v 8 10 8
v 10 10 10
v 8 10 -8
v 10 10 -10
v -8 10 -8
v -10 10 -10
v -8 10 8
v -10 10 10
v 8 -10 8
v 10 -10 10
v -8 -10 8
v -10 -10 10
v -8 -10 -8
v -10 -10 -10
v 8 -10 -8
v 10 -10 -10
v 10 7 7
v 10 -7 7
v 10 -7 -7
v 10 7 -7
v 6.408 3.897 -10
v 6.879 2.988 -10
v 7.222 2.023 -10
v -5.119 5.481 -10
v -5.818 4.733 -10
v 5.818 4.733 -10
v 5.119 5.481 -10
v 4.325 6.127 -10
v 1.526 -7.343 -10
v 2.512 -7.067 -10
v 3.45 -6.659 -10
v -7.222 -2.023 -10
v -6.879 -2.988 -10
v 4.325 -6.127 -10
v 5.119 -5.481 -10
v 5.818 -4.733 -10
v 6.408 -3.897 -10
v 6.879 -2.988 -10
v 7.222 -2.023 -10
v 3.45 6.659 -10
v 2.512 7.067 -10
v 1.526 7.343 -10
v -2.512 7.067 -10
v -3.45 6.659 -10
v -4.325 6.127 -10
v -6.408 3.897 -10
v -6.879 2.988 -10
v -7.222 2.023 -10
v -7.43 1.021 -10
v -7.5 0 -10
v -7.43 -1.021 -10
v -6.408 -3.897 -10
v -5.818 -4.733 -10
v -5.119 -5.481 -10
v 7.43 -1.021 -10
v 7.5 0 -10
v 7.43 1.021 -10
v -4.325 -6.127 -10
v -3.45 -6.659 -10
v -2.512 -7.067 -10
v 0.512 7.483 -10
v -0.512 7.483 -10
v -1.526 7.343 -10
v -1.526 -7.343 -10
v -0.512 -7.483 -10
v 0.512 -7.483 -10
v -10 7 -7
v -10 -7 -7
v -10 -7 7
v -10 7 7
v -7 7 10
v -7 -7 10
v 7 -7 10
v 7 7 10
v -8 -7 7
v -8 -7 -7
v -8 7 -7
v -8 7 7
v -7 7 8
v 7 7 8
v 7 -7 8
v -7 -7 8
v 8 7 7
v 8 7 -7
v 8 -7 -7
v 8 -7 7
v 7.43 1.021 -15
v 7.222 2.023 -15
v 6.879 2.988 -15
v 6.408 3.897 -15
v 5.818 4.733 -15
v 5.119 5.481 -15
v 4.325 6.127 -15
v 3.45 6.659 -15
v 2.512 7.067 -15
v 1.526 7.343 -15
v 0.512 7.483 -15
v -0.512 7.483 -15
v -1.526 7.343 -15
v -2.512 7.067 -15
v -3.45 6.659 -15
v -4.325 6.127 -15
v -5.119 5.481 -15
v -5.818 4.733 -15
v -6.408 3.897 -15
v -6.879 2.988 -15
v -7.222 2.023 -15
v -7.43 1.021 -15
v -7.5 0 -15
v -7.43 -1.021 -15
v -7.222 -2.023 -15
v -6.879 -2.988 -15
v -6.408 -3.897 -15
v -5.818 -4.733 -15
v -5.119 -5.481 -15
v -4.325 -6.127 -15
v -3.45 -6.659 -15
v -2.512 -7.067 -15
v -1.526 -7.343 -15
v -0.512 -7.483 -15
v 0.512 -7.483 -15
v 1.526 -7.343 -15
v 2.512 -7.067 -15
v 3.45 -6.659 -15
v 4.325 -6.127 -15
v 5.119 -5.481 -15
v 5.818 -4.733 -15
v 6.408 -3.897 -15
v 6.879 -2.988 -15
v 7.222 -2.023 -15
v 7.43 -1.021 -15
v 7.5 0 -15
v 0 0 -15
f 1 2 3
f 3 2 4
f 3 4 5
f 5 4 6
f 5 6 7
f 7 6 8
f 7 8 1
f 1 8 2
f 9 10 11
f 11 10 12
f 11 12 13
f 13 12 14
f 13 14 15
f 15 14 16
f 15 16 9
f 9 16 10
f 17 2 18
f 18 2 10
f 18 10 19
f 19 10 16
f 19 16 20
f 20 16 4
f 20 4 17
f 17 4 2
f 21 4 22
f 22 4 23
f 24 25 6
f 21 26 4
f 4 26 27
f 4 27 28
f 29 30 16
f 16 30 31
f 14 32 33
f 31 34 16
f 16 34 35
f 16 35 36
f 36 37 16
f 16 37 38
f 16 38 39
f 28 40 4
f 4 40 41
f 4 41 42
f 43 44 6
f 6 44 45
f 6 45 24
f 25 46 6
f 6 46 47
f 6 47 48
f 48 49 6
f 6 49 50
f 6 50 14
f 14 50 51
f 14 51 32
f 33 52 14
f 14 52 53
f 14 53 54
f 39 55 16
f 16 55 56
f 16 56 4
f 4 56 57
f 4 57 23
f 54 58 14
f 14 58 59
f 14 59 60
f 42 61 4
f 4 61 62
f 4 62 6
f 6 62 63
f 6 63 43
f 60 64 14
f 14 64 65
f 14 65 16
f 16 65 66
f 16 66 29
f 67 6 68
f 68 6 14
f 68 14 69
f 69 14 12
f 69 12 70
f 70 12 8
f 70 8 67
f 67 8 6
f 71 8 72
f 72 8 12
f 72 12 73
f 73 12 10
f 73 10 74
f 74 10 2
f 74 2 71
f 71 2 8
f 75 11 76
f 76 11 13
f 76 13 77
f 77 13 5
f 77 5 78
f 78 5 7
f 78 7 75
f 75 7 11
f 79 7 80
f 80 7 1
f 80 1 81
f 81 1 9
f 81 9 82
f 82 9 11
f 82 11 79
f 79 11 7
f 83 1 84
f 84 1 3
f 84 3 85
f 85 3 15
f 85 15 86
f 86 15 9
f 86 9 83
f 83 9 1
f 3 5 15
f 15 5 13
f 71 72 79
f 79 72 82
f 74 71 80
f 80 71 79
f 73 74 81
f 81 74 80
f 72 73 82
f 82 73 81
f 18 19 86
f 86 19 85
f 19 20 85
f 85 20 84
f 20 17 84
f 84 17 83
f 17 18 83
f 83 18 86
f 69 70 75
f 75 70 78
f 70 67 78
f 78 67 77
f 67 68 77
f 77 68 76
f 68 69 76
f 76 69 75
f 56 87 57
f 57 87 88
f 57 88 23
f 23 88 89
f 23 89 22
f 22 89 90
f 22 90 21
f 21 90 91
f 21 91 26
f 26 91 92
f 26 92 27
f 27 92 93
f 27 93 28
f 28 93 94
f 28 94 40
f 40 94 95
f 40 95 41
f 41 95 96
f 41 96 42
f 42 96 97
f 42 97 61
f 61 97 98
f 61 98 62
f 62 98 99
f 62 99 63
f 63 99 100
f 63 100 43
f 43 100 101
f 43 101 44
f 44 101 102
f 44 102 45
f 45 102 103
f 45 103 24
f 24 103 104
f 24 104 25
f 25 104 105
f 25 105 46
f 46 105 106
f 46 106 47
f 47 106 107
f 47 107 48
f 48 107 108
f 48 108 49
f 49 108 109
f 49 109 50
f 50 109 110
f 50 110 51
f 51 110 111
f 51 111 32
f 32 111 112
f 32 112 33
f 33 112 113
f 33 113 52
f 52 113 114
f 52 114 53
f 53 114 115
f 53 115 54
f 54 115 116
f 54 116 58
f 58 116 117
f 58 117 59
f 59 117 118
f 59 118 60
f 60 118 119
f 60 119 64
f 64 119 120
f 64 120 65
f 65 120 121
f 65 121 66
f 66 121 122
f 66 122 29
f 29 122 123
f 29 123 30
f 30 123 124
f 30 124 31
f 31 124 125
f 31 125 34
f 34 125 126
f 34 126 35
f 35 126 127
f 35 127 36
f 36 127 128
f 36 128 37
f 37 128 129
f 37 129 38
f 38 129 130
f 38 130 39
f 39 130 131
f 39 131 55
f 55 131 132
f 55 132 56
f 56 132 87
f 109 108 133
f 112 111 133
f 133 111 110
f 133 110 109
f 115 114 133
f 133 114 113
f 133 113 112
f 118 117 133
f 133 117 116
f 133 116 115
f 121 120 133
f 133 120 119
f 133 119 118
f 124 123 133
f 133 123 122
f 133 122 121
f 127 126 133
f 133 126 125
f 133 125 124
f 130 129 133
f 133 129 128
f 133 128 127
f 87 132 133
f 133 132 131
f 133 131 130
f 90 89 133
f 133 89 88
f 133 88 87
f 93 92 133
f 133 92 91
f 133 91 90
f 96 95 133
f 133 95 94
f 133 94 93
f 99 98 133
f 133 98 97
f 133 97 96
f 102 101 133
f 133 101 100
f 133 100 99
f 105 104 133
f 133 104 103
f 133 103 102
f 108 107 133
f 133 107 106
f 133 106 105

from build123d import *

# Parameters (mm, degrees)
SKETCH1_W           = 20
SKETCH1_H           = 20
SKETCH1_W_2         = 16
SKETCH1_H_2         = 16
BOSS_EXTRUDE1_DEPTH = 10
SKETCH2_W           = 14
SKETCH2_H           = 14
CUT_EXTRUDE1_DEPTH  = 21
SKETCH3_W           = 14
SKETCH3_H           = 14
CUT_EXTRUDE2_DEPTH  = 21
SKETCH4_W           = 2
SKETCH4_H           = 14
BOSS_EXTRUDE2_DEPTH = 14
SKETCH5_R           = 7.5
BOSS_EXTRUDE3_DEPTH = 5


with BuildPart() as part:
    # Sketch1 → Boss-Extrude1 (new body, symmetric)
    with BuildSketch(Plane(origin=(0, 0, 0), x_dir=(1, 0, 0), z_dir=(0, 1, 0))):
        Rectangle(SKETCH1_W, SKETCH1_H)
        Rectangle(SKETCH1_W_2, SKETCH1_H_2, mode=Mode.SUBTRACT)
    extrude(amount=BOSS_EXTRUDE1_DEPTH, both=True)

    # Sketch2 → Cut-Extrude1 (cut, through all)
    with BuildSketch(Plane.XY.offset(10)):
        Rectangle(SKETCH2_W, SKETCH2_H)
    extrude(amount=-CUT_EXTRUDE1_DEPTH, mode=Mode.SUBTRACT)

    # Sketch3 → Cut-Extrude2 (cut, through all)
    with BuildSketch(Plane(origin=(10, 0, 0), x_dir=(0, 0, -1), z_dir=(1, 0, 0))):
        Rectangle(SKETCH3_W, SKETCH3_H)
    extrude(amount=-CUT_EXTRUDE2_DEPTH, mode=Mode.SUBTRACT)

    # Sketch4 → Boss-Extrude2 (add)
    with BuildSketch(Plane(origin=(-7, 0, 0), x_dir=(0, 0, -1), z_dir=(1, 0, 0))):
        with Locations((9, 0)):
            Rectangle(SKETCH4_W, SKETCH4_H)
    extrude(amount=BOSS_EXTRUDE2_DEPTH)

    # Sketch5 → Boss-Extrude3 (add)
    with BuildSketch(Plane(origin=(0, 0, -10), x_dir=(-1, 0, 0), z_dir=(0, 0, -1))):
        Circle(SKETCH5_R)
    extrude(amount=BOSS_EXTRUDE3_DEPTH)


solid = part.part
